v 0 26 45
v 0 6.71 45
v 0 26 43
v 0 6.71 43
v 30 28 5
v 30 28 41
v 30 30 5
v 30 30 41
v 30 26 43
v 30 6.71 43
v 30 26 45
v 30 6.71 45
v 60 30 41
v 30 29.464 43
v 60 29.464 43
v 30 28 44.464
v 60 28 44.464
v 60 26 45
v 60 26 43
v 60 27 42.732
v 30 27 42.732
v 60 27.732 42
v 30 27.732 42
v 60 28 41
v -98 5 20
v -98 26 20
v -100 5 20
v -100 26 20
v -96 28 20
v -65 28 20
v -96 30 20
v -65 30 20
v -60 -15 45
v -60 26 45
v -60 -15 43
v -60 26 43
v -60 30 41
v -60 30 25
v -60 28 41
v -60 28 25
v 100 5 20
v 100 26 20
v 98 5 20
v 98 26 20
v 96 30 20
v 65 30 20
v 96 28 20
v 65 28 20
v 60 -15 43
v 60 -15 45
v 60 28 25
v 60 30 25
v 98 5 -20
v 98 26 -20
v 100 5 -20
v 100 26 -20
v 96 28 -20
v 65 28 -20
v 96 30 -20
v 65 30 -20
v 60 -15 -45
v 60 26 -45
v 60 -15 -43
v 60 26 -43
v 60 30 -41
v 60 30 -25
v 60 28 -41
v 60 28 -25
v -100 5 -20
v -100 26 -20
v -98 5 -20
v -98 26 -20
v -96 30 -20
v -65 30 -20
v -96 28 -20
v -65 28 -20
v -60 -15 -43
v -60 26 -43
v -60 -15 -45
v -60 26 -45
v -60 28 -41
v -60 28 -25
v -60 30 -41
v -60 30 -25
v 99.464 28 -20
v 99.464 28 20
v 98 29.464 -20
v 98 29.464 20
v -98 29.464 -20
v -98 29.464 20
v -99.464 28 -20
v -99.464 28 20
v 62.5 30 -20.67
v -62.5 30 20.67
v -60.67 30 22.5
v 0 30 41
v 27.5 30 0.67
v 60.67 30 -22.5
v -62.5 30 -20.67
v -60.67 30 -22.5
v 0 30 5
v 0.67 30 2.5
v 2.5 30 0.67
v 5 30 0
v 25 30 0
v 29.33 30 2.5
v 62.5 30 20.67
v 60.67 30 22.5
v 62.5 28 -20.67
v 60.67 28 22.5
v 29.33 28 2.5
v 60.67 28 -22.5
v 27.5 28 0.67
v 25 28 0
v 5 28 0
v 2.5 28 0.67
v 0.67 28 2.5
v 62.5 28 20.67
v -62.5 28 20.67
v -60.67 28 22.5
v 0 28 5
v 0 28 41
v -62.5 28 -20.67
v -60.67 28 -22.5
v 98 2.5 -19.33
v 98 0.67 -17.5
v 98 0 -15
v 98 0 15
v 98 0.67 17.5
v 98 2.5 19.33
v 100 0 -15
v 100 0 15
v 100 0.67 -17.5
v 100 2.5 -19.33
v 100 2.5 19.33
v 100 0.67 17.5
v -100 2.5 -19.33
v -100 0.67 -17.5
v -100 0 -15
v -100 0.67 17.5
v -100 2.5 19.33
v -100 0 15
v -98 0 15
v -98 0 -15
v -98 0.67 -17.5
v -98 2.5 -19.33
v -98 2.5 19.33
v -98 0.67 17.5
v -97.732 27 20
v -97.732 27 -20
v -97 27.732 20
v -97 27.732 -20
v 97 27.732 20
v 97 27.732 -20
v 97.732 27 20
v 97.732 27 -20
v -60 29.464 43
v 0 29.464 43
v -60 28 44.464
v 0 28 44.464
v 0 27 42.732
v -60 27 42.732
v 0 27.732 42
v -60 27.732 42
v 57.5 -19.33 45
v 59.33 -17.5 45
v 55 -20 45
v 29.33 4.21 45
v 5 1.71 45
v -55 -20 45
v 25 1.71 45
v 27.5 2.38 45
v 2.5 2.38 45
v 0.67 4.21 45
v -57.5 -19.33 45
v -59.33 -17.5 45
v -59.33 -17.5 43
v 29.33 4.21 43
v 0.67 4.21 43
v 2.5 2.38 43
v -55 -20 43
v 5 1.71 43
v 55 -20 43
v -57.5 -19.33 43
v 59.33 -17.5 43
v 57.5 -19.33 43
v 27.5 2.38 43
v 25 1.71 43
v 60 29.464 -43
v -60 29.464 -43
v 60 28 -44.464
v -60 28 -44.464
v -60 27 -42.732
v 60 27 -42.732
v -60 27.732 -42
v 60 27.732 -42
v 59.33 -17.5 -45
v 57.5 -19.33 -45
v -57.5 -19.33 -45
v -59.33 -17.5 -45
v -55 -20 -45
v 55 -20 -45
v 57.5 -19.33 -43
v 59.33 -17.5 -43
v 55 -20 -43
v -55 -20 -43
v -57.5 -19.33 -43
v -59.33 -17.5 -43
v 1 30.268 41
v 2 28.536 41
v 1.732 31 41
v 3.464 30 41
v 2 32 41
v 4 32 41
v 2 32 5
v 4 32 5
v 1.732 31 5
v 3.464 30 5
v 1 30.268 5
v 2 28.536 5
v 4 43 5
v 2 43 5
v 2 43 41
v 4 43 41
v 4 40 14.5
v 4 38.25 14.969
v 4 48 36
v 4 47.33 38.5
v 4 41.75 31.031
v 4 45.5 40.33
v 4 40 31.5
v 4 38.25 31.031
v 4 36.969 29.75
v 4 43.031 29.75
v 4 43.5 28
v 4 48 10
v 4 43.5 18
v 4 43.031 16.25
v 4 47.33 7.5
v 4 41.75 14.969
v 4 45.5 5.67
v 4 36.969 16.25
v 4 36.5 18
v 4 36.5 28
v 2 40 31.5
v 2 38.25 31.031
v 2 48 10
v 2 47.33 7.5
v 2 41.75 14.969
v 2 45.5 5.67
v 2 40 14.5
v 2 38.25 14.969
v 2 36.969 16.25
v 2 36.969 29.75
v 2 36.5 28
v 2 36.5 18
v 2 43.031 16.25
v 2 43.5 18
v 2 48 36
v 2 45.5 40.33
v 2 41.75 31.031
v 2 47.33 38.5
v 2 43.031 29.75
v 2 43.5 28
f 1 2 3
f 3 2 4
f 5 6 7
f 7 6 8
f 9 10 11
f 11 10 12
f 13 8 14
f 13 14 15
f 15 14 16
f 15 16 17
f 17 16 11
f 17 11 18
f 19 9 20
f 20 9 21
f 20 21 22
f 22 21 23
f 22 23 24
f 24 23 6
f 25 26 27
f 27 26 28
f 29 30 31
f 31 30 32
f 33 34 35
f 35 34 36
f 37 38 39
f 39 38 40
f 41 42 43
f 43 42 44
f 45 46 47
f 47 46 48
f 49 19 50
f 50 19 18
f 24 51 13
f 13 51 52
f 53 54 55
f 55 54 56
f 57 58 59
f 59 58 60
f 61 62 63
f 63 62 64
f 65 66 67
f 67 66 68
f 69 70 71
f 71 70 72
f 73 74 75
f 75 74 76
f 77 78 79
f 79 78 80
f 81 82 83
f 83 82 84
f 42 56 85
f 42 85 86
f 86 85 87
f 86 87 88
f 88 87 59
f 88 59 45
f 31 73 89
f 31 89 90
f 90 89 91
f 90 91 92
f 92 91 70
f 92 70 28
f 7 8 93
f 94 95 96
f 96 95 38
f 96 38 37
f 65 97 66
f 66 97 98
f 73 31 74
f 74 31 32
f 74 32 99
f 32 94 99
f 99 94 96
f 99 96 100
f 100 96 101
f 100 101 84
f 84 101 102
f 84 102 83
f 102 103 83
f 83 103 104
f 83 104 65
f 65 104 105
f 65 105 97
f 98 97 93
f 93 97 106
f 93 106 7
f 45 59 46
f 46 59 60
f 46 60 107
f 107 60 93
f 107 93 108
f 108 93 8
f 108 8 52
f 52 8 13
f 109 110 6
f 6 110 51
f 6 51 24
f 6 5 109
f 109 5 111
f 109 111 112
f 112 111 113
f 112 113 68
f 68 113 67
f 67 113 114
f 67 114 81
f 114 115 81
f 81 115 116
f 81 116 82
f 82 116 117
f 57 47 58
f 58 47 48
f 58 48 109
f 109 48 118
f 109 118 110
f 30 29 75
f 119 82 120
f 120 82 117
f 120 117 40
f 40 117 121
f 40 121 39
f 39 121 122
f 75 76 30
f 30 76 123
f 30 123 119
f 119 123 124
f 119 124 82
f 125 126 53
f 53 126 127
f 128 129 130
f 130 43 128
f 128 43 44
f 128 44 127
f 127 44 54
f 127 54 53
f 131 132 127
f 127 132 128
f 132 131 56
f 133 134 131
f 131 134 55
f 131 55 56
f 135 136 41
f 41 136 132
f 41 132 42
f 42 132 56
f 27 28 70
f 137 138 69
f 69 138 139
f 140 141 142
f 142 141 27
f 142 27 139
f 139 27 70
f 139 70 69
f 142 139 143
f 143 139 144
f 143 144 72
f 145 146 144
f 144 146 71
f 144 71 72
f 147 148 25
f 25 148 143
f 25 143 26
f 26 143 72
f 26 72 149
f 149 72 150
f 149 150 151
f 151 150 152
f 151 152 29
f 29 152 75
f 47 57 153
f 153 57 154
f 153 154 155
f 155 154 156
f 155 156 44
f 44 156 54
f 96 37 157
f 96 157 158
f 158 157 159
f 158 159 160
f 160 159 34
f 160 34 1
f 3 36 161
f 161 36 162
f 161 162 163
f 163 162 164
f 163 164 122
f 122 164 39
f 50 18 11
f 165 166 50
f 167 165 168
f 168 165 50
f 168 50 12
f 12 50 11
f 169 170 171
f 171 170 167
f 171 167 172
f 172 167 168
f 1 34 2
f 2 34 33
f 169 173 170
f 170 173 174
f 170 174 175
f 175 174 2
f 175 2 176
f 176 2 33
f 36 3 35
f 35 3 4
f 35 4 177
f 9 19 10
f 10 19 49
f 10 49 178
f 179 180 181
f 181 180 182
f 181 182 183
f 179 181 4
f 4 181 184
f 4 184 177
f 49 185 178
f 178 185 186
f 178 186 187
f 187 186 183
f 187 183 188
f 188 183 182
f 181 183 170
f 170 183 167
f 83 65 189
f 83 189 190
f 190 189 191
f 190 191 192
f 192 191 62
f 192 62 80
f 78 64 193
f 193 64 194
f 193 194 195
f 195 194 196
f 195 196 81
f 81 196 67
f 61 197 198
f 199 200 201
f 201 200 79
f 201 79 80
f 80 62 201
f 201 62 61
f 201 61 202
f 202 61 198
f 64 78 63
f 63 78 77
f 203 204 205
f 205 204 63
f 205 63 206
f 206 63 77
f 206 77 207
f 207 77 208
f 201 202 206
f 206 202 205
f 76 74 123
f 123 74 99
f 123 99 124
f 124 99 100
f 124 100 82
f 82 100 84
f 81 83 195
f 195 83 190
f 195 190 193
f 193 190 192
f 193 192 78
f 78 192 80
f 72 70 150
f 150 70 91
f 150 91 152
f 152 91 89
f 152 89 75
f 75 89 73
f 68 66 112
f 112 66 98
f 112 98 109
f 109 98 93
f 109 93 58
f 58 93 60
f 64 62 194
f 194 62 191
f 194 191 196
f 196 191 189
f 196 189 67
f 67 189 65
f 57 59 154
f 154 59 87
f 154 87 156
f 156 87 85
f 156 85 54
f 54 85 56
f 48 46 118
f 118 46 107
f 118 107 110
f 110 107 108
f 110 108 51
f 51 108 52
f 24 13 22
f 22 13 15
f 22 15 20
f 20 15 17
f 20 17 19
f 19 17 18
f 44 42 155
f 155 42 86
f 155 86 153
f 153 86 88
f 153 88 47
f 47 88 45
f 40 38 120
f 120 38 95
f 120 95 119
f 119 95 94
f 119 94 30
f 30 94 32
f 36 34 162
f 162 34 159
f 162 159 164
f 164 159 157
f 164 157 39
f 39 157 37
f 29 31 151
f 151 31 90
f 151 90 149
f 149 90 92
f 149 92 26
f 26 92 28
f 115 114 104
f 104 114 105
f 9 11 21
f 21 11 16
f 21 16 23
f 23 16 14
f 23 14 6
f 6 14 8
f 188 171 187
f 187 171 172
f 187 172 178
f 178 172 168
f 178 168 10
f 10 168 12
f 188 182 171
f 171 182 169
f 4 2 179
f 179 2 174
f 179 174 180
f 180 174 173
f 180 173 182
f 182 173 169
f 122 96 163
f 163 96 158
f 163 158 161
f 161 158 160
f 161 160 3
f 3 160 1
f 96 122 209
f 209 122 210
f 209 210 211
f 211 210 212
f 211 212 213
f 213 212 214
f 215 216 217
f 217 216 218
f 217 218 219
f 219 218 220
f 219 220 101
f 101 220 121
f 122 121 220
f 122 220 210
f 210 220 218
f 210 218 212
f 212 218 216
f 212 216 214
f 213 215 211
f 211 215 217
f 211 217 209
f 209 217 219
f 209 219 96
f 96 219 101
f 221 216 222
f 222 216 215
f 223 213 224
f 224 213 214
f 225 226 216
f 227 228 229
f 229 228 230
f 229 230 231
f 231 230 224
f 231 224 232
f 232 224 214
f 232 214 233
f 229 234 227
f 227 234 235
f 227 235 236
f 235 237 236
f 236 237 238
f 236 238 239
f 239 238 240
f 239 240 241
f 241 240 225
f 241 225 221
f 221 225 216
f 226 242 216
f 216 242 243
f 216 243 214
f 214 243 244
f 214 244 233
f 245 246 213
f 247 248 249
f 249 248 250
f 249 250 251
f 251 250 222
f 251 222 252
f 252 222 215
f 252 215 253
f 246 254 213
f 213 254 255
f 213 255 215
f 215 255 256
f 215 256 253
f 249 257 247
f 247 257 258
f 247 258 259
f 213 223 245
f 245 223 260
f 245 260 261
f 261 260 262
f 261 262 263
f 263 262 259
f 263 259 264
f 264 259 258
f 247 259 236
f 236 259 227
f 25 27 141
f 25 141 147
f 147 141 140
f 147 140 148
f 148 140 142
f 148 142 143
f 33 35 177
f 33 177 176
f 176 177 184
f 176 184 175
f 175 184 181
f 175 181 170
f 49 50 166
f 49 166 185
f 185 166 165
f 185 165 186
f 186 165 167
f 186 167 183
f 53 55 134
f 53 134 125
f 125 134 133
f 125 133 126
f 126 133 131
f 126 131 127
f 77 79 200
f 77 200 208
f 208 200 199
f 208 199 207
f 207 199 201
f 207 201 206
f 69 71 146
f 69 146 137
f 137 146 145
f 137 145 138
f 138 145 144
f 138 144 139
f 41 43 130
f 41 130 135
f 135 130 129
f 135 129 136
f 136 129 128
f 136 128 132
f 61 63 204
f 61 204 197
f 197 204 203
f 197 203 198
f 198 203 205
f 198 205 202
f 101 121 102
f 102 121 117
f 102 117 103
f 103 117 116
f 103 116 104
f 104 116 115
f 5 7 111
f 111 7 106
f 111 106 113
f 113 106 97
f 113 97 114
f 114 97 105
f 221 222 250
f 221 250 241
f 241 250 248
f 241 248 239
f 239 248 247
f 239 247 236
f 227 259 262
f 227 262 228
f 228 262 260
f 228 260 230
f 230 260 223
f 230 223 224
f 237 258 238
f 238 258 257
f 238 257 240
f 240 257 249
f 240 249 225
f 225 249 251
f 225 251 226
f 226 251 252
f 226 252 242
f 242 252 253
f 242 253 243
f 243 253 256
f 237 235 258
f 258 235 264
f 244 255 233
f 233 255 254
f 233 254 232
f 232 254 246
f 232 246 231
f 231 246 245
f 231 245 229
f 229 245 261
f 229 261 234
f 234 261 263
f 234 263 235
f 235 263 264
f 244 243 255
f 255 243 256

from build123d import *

# Parameters (mm, degrees)
BASE_FLANGE1_DEPTH      = 45
EDGE_FLANGE2_START      = -100
EDGE_FLANGE2_DEPTH      = 200
EDGE_FLANGE2_2_DEPTH    = 4
EDGE_FLANGE2_START_2    = 96
EDGE_FLANGE2_3_DEPTH    = 4
EDGE_FLANGE2_START_3    = -96
EDGE_FLANGE2_4_DEPTH    = 192
EDGE_FLANGE3_START      = -100
EDGE_FLANGE3_DEPTH      = 200
EDGE_FLANGE3_2_DEPTH    = 4
EDGE_FLANGE3_START_2    = 96
EDGE_FLANGE3_3_DEPTH    = 4
EDGE_FLANGE3_START_3    = -96
EDGE_FLANGE3_4_DEPTH    = 192
CUT_EXTRUDE1_DEPTH      = 121.519707932
CUT_EXTRUDE1_DEPTH_BACK = 121.519707932
CUT_EXTRUDE2_DEPTH      = 138.840487521
CUT_EXTRUDE2_DEPTH_BACK = 45
EDGE_FLANGE4_DEPTH      = 36
FILLET1_R               = 5
CUT_EXTRUDE3_DEPTH      = 10


# Read off the part's stored shape, not the designer's step: Edge-Flange2, Edge-Flange3
# Sheet-metal steps are written as plain solids
with BuildPart() as part:
    # Sketch1 → Base-Flange1 (new, symmetric)
    with BuildSketch(Plane.XY):
        with BuildLine():
            Line((-100, 0), (-100, 26))
            ThreePointArc((-100, 26), (-98.828427125, 28.828427125), (-96, 30))
            Line((-96, 30), (96, 30))
            ThreePointArc((96, 30), (98.828427125, 28.828427125), (100, 26))
            Line((100, 26), (100, 0))
            Line((100, 0), (98, 0))
            Line((98, 0), (98, 26))
            ThreePointArc((98, 26), (97.414213562, 27.414213562), (96, 28))
            Line((96, 28), (-96, 28))
            ThreePointArc((-96, 28), (-97.414213562, 27.414213562), (-98, 26))
            Line((-98, 26), (-98, 0))
            Line((-98, 0), (-100, 0))
        make_face()
    extrude(amount=BASE_FLANGE1_DEPTH, both=True)

    # Edge-Flange2 outline → Edge-Flange2 (cut)
    with BuildSketch(Plane.YZ.offset(EDGE_FLANGE2_START)):
        with BuildLine():
            Line((26, 43), (26, 41))
            Line((26, 41), (28, 41))
            ThreePointArc((28, 41), (27.414213562, 42.414213562), (26, 43))
        make_face()
        with BuildLine():
            ThreePointArc((26, 45), (28.828427125, 43.828427125), (30, 41))
            Line((30, 41), (30, 45))
            Line((30, 45), (26, 45))
        make_face()
    extrude(amount=EDGE_FLANGE2_DEPTH, mode=Mode.SUBTRACT)

    # Edge-Flange2 2 outline → Edge-Flange2 2 (cut)
    with BuildSketch(Plane.YZ.offset(EDGE_FLANGE2_START)):
        with BuildLine():
            Line((26, 45), (26, 43))
            ThreePointArc((26, 43), (27.414213562, 42.414213562), (28, 41))
            Line((28, 41), (30, 41))
            ThreePointArc((30, 41), (28.828427125, 43.828427125), (26, 45))
        make_face()
    extrude(amount=EDGE_FLANGE2_2_DEPTH, mode=Mode.SUBTRACT)

    # Edge-Flange2 3 outline → Edge-Flange2 3 (cut)
    with BuildSketch(Plane.YZ.offset(EDGE_FLANGE2_START_2)):
        with BuildLine():
            Line((26, 45), (26, 43))
            ThreePointArc((26, 43), (27.414213562, 42.414213562), (28, 41))
            Line((28, 41), (30, 41))
            ThreePointArc((30, 41), (28.828427125, 43.828427125), (26, 45))
        make_face()
    extrude(amount=EDGE_FLANGE2_3_DEPTH, mode=Mode.SUBTRACT)

    # Edge-Flange2 4 outline → Edge-Flange2 4 (add)
    with BuildSketch(Plane.YZ.offset(EDGE_FLANGE2_START_3)):
        with BuildLine():
            Line((-20, 43), (26, 43))
            ThreePointArc((26, 43), (27.414213562, 42.414213562), (28, 41))
            Line((28, 41), (28, 44.464101616))
            ThreePointArc((28, 44.464101616), (27.03527618, 44.863703305), (26, 45))
            Line((26, 45), (-20, 45))
            Line((-20, 45), (-20, 43))
        make_face()
    extrude(amount=EDGE_FLANGE2_4_DEPTH)

    # Edge-Flange3 outline → Edge-Flange3 (cut)
    with BuildSketch(Plane.YZ.offset(EDGE_FLANGE3_START)):
        with BuildLine():
            Line((28, -41), (26, -41))
            Line((26, -41), (26, -43))
            ThreePointArc((26, -43), (27.414213562, -42.414213562), (28, -41))
        make_face()
        with BuildLine():
            Line((26, -45), (30, -45))
            Line((30, -45), (30, -41))
            ThreePointArc((30, -41), (28.828427125, -43.828427125), (26, -45))
        make_face()
    extrude(amount=EDGE_FLANGE3_DEPTH, mode=Mode.SUBTRACT)

    # Edge-Flange3 2 outline → Edge-Flange3 2 (cut)
    with BuildSketch(Plane.YZ.offset(EDGE_FLANGE3_START)):
        with BuildLine():
            ThreePointArc((28, -41), (27.414213562, -42.414213562), (26, -43))
            Line((26, -43), (26, -45))
            ThreePointArc((26, -45), (28.828427125, -43.828427125), (30, -41))
            Line((30, -41), (28, -41))
        make_face()
    extrude(amount=EDGE_FLANGE3_2_DEPTH, mode=Mode.SUBTRACT)

    # Edge-Flange3 3 outline → Edge-Flange3 3 (cut)
    with BuildSketch(Plane.YZ.offset(EDGE_FLANGE3_START_2)):
        with BuildLine():
            ThreePointArc((28, -41), (27.414213562, -42.414213562), (26, -43))
            Line((26, -43), (26, -45))
            ThreePointArc((26, -45), (28.828427125, -43.828427125), (30, -41))
            Line((30, -41), (28, -41))
        make_face()
    extrude(amount=EDGE_FLANGE3_3_DEPTH, mode=Mode.SUBTRACT)

    # Edge-Flange3 4 outline → Edge-Flange3 4 (add)
    with BuildSketch(Plane.YZ.offset(EDGE_FLANGE3_START_3)):
        with BuildLine():
            ThreePointArc((28, -41), (27.414213562, -42.414213562), (26, -43))
            Line((26, -43), (-20, -43))
            Line((-20, -43), (-20, -45))
            Line((-20, -45), (26, -45))
            ThreePointArc((26, -45), (27.03527618, -44.863703305), (28, -44.464101616))
            Line((28, -44.464101616), (28, -41))
        make_face()
    extrude(amount=EDGE_FLANGE3_4_DEPTH)

    # Sketch15 → Cut-Extrude1 (cut, two sides: drawn at the far end of the back side and taken through both)
    with BuildSketch(Plane(origin=(0, 30, 0), x_dir=(1, 0, 0), z_dir=(0, 1, 0)).offset(-CUT_EXTRUDE1_DEPTH_BACK)):
        with BuildLine():
            Line((-60, 65.269806107), (-60, 25))
            ThreePointArc((-60, 25), (-61.464466094, 21.464466094), (-65, 20))
            Line((-65, 20), (-105.792448389, 20))
            Line((-105.792448389, 20), (-105.792448389, 65.269806107))
            Line((-105.792448389, 65.269806107), (-60, 65.269806107))
        make_face()
        with BuildLine():
            Line((105.792448389, 65.269806107), (60, 65.269806107))
            Line((60, 65.269806107), (60, 25))
            ThreePointArc((60, 25), (61.464466094, 21.464466094), (65, 20))
            Line((65, 20), (105.792448389, 20))
            Line((105.792448389, 20), (105.792448389, 65.269806107))
        make_face()
        with BuildLine():
            Line((60, -65.269806107), (60, -25))
            ThreePointArc((60, -25), (61.464466094, -21.464466094), (65, -20))
            Line((65, -20), (105.792448389, -20))
            Line((105.792448389, -20), (105.792448389, -65.269806107))
            Line((105.792448389, -65.269806107), (60, -65.269806107))
        make_face()
        with BuildLine():
            Line((-105.792448389, -20), (-105.792448389, -65.269806107))
            Line((-105.792448389, -65.269806107), (-60, -65.269806107))
            Line((-60, -65.269806107), (-60, -25))
            ThreePointArc((-60, -25), (-61.464466094, -21.464466094), (-65, -20))
            Line((-65, -20), (-105.792448389, -20))
        make_face()
    extrude(amount=CUT_EXTRUDE1_DEPTH + CUT_EXTRUDE1_DEPTH_BACK, mode=Mode.SUBTRACT)

    # Sketch16 → Cut-Extrude2 (cut, two sides: drawn at the far end of the back side and taken through both)
    with BuildSketch(Plane.XY.offset(45).offset(-CUT_EXTRUDE2_DEPTH_BACK)):
        with BuildLine():
            Line((0, 30), (0, 6.71))
            ThreePointArc((0, 6.71), (1.464466094, 3.174466094), (5, 1.71))
            Line((5, 1.71), (25, 1.71))
            ThreePointArc((25, 1.71), (28.535533906, 3.174466094), (30, 6.71))
            Line((30, 6.71), (30, 30))
            Line((30, 30), (0, 30))
        make_face()
    extrude(amount=CUT_EXTRUDE2_DEPTH + CUT_EXTRUDE2_DEPTH_BACK, mode=Mode.SUBTRACT)

    # Edge-Flange4 section (across the edge) → Edge-Flange4 (add)
    with BuildSketch(Plane(origin=(2, 30, 41), x_dir=(-1, 0, 0), z_dir=(0, 0, -1))):
        with BuildLine():
            Line((-2, 2), (-2, 18))
            Line((-2, 18), (0, 18))
            Line((0, 18), (0, 2))
            ThreePointArc((0, 2), (0.585786438, 0.585786438), (2, 0))
            Line((2, 0), (2, -2))
            ThreePointArc((2, -2), (-0.828427125, -0.828427125), (-2, 2))
        make_face()
    extrude(amount=EDGE_FLANGE4_DEPTH)

    # Fillet1
    fillet1_edges = [part.edges().sort_by_distance(p)[0] for p in [
        (3, 48, 5),
        (3, 48, 41),
        (-99, 0, 20),
        (-60, -20, 44),
        (60, -20, 44),
        (99, 0, -20),
        (-60, -20, -44),
        (-99, 0, -20),
        (99, 0, 20),
        (60, -20, -44),
        (0, 29, 0),
        (30, 29, 0),
    ]]
    fillet(fillet1_edges, radius=FILLET1_R - 0.0001)  # a hair under: the kernel refuses the full size

    # Sketch21 → Cut-Extrude3 (cut)
    with BuildSketch(Plane.ZY.offset(-2)):
        with BuildLine():
            Line((18, 43.5), (28, 43.5))
            ThreePointArc((28, 43.5), (31.5, 40), (28, 36.5))
            Line((28, 36.5), (18, 36.5))
            ThreePointArc((18, 36.5), (14.5, 40), (18, 43.5))
        make_face()
    extrude(amount=-CUT_EXTRUDE3_DEPTH, mode=Mode.SUBTRACT)


solid = part.part
